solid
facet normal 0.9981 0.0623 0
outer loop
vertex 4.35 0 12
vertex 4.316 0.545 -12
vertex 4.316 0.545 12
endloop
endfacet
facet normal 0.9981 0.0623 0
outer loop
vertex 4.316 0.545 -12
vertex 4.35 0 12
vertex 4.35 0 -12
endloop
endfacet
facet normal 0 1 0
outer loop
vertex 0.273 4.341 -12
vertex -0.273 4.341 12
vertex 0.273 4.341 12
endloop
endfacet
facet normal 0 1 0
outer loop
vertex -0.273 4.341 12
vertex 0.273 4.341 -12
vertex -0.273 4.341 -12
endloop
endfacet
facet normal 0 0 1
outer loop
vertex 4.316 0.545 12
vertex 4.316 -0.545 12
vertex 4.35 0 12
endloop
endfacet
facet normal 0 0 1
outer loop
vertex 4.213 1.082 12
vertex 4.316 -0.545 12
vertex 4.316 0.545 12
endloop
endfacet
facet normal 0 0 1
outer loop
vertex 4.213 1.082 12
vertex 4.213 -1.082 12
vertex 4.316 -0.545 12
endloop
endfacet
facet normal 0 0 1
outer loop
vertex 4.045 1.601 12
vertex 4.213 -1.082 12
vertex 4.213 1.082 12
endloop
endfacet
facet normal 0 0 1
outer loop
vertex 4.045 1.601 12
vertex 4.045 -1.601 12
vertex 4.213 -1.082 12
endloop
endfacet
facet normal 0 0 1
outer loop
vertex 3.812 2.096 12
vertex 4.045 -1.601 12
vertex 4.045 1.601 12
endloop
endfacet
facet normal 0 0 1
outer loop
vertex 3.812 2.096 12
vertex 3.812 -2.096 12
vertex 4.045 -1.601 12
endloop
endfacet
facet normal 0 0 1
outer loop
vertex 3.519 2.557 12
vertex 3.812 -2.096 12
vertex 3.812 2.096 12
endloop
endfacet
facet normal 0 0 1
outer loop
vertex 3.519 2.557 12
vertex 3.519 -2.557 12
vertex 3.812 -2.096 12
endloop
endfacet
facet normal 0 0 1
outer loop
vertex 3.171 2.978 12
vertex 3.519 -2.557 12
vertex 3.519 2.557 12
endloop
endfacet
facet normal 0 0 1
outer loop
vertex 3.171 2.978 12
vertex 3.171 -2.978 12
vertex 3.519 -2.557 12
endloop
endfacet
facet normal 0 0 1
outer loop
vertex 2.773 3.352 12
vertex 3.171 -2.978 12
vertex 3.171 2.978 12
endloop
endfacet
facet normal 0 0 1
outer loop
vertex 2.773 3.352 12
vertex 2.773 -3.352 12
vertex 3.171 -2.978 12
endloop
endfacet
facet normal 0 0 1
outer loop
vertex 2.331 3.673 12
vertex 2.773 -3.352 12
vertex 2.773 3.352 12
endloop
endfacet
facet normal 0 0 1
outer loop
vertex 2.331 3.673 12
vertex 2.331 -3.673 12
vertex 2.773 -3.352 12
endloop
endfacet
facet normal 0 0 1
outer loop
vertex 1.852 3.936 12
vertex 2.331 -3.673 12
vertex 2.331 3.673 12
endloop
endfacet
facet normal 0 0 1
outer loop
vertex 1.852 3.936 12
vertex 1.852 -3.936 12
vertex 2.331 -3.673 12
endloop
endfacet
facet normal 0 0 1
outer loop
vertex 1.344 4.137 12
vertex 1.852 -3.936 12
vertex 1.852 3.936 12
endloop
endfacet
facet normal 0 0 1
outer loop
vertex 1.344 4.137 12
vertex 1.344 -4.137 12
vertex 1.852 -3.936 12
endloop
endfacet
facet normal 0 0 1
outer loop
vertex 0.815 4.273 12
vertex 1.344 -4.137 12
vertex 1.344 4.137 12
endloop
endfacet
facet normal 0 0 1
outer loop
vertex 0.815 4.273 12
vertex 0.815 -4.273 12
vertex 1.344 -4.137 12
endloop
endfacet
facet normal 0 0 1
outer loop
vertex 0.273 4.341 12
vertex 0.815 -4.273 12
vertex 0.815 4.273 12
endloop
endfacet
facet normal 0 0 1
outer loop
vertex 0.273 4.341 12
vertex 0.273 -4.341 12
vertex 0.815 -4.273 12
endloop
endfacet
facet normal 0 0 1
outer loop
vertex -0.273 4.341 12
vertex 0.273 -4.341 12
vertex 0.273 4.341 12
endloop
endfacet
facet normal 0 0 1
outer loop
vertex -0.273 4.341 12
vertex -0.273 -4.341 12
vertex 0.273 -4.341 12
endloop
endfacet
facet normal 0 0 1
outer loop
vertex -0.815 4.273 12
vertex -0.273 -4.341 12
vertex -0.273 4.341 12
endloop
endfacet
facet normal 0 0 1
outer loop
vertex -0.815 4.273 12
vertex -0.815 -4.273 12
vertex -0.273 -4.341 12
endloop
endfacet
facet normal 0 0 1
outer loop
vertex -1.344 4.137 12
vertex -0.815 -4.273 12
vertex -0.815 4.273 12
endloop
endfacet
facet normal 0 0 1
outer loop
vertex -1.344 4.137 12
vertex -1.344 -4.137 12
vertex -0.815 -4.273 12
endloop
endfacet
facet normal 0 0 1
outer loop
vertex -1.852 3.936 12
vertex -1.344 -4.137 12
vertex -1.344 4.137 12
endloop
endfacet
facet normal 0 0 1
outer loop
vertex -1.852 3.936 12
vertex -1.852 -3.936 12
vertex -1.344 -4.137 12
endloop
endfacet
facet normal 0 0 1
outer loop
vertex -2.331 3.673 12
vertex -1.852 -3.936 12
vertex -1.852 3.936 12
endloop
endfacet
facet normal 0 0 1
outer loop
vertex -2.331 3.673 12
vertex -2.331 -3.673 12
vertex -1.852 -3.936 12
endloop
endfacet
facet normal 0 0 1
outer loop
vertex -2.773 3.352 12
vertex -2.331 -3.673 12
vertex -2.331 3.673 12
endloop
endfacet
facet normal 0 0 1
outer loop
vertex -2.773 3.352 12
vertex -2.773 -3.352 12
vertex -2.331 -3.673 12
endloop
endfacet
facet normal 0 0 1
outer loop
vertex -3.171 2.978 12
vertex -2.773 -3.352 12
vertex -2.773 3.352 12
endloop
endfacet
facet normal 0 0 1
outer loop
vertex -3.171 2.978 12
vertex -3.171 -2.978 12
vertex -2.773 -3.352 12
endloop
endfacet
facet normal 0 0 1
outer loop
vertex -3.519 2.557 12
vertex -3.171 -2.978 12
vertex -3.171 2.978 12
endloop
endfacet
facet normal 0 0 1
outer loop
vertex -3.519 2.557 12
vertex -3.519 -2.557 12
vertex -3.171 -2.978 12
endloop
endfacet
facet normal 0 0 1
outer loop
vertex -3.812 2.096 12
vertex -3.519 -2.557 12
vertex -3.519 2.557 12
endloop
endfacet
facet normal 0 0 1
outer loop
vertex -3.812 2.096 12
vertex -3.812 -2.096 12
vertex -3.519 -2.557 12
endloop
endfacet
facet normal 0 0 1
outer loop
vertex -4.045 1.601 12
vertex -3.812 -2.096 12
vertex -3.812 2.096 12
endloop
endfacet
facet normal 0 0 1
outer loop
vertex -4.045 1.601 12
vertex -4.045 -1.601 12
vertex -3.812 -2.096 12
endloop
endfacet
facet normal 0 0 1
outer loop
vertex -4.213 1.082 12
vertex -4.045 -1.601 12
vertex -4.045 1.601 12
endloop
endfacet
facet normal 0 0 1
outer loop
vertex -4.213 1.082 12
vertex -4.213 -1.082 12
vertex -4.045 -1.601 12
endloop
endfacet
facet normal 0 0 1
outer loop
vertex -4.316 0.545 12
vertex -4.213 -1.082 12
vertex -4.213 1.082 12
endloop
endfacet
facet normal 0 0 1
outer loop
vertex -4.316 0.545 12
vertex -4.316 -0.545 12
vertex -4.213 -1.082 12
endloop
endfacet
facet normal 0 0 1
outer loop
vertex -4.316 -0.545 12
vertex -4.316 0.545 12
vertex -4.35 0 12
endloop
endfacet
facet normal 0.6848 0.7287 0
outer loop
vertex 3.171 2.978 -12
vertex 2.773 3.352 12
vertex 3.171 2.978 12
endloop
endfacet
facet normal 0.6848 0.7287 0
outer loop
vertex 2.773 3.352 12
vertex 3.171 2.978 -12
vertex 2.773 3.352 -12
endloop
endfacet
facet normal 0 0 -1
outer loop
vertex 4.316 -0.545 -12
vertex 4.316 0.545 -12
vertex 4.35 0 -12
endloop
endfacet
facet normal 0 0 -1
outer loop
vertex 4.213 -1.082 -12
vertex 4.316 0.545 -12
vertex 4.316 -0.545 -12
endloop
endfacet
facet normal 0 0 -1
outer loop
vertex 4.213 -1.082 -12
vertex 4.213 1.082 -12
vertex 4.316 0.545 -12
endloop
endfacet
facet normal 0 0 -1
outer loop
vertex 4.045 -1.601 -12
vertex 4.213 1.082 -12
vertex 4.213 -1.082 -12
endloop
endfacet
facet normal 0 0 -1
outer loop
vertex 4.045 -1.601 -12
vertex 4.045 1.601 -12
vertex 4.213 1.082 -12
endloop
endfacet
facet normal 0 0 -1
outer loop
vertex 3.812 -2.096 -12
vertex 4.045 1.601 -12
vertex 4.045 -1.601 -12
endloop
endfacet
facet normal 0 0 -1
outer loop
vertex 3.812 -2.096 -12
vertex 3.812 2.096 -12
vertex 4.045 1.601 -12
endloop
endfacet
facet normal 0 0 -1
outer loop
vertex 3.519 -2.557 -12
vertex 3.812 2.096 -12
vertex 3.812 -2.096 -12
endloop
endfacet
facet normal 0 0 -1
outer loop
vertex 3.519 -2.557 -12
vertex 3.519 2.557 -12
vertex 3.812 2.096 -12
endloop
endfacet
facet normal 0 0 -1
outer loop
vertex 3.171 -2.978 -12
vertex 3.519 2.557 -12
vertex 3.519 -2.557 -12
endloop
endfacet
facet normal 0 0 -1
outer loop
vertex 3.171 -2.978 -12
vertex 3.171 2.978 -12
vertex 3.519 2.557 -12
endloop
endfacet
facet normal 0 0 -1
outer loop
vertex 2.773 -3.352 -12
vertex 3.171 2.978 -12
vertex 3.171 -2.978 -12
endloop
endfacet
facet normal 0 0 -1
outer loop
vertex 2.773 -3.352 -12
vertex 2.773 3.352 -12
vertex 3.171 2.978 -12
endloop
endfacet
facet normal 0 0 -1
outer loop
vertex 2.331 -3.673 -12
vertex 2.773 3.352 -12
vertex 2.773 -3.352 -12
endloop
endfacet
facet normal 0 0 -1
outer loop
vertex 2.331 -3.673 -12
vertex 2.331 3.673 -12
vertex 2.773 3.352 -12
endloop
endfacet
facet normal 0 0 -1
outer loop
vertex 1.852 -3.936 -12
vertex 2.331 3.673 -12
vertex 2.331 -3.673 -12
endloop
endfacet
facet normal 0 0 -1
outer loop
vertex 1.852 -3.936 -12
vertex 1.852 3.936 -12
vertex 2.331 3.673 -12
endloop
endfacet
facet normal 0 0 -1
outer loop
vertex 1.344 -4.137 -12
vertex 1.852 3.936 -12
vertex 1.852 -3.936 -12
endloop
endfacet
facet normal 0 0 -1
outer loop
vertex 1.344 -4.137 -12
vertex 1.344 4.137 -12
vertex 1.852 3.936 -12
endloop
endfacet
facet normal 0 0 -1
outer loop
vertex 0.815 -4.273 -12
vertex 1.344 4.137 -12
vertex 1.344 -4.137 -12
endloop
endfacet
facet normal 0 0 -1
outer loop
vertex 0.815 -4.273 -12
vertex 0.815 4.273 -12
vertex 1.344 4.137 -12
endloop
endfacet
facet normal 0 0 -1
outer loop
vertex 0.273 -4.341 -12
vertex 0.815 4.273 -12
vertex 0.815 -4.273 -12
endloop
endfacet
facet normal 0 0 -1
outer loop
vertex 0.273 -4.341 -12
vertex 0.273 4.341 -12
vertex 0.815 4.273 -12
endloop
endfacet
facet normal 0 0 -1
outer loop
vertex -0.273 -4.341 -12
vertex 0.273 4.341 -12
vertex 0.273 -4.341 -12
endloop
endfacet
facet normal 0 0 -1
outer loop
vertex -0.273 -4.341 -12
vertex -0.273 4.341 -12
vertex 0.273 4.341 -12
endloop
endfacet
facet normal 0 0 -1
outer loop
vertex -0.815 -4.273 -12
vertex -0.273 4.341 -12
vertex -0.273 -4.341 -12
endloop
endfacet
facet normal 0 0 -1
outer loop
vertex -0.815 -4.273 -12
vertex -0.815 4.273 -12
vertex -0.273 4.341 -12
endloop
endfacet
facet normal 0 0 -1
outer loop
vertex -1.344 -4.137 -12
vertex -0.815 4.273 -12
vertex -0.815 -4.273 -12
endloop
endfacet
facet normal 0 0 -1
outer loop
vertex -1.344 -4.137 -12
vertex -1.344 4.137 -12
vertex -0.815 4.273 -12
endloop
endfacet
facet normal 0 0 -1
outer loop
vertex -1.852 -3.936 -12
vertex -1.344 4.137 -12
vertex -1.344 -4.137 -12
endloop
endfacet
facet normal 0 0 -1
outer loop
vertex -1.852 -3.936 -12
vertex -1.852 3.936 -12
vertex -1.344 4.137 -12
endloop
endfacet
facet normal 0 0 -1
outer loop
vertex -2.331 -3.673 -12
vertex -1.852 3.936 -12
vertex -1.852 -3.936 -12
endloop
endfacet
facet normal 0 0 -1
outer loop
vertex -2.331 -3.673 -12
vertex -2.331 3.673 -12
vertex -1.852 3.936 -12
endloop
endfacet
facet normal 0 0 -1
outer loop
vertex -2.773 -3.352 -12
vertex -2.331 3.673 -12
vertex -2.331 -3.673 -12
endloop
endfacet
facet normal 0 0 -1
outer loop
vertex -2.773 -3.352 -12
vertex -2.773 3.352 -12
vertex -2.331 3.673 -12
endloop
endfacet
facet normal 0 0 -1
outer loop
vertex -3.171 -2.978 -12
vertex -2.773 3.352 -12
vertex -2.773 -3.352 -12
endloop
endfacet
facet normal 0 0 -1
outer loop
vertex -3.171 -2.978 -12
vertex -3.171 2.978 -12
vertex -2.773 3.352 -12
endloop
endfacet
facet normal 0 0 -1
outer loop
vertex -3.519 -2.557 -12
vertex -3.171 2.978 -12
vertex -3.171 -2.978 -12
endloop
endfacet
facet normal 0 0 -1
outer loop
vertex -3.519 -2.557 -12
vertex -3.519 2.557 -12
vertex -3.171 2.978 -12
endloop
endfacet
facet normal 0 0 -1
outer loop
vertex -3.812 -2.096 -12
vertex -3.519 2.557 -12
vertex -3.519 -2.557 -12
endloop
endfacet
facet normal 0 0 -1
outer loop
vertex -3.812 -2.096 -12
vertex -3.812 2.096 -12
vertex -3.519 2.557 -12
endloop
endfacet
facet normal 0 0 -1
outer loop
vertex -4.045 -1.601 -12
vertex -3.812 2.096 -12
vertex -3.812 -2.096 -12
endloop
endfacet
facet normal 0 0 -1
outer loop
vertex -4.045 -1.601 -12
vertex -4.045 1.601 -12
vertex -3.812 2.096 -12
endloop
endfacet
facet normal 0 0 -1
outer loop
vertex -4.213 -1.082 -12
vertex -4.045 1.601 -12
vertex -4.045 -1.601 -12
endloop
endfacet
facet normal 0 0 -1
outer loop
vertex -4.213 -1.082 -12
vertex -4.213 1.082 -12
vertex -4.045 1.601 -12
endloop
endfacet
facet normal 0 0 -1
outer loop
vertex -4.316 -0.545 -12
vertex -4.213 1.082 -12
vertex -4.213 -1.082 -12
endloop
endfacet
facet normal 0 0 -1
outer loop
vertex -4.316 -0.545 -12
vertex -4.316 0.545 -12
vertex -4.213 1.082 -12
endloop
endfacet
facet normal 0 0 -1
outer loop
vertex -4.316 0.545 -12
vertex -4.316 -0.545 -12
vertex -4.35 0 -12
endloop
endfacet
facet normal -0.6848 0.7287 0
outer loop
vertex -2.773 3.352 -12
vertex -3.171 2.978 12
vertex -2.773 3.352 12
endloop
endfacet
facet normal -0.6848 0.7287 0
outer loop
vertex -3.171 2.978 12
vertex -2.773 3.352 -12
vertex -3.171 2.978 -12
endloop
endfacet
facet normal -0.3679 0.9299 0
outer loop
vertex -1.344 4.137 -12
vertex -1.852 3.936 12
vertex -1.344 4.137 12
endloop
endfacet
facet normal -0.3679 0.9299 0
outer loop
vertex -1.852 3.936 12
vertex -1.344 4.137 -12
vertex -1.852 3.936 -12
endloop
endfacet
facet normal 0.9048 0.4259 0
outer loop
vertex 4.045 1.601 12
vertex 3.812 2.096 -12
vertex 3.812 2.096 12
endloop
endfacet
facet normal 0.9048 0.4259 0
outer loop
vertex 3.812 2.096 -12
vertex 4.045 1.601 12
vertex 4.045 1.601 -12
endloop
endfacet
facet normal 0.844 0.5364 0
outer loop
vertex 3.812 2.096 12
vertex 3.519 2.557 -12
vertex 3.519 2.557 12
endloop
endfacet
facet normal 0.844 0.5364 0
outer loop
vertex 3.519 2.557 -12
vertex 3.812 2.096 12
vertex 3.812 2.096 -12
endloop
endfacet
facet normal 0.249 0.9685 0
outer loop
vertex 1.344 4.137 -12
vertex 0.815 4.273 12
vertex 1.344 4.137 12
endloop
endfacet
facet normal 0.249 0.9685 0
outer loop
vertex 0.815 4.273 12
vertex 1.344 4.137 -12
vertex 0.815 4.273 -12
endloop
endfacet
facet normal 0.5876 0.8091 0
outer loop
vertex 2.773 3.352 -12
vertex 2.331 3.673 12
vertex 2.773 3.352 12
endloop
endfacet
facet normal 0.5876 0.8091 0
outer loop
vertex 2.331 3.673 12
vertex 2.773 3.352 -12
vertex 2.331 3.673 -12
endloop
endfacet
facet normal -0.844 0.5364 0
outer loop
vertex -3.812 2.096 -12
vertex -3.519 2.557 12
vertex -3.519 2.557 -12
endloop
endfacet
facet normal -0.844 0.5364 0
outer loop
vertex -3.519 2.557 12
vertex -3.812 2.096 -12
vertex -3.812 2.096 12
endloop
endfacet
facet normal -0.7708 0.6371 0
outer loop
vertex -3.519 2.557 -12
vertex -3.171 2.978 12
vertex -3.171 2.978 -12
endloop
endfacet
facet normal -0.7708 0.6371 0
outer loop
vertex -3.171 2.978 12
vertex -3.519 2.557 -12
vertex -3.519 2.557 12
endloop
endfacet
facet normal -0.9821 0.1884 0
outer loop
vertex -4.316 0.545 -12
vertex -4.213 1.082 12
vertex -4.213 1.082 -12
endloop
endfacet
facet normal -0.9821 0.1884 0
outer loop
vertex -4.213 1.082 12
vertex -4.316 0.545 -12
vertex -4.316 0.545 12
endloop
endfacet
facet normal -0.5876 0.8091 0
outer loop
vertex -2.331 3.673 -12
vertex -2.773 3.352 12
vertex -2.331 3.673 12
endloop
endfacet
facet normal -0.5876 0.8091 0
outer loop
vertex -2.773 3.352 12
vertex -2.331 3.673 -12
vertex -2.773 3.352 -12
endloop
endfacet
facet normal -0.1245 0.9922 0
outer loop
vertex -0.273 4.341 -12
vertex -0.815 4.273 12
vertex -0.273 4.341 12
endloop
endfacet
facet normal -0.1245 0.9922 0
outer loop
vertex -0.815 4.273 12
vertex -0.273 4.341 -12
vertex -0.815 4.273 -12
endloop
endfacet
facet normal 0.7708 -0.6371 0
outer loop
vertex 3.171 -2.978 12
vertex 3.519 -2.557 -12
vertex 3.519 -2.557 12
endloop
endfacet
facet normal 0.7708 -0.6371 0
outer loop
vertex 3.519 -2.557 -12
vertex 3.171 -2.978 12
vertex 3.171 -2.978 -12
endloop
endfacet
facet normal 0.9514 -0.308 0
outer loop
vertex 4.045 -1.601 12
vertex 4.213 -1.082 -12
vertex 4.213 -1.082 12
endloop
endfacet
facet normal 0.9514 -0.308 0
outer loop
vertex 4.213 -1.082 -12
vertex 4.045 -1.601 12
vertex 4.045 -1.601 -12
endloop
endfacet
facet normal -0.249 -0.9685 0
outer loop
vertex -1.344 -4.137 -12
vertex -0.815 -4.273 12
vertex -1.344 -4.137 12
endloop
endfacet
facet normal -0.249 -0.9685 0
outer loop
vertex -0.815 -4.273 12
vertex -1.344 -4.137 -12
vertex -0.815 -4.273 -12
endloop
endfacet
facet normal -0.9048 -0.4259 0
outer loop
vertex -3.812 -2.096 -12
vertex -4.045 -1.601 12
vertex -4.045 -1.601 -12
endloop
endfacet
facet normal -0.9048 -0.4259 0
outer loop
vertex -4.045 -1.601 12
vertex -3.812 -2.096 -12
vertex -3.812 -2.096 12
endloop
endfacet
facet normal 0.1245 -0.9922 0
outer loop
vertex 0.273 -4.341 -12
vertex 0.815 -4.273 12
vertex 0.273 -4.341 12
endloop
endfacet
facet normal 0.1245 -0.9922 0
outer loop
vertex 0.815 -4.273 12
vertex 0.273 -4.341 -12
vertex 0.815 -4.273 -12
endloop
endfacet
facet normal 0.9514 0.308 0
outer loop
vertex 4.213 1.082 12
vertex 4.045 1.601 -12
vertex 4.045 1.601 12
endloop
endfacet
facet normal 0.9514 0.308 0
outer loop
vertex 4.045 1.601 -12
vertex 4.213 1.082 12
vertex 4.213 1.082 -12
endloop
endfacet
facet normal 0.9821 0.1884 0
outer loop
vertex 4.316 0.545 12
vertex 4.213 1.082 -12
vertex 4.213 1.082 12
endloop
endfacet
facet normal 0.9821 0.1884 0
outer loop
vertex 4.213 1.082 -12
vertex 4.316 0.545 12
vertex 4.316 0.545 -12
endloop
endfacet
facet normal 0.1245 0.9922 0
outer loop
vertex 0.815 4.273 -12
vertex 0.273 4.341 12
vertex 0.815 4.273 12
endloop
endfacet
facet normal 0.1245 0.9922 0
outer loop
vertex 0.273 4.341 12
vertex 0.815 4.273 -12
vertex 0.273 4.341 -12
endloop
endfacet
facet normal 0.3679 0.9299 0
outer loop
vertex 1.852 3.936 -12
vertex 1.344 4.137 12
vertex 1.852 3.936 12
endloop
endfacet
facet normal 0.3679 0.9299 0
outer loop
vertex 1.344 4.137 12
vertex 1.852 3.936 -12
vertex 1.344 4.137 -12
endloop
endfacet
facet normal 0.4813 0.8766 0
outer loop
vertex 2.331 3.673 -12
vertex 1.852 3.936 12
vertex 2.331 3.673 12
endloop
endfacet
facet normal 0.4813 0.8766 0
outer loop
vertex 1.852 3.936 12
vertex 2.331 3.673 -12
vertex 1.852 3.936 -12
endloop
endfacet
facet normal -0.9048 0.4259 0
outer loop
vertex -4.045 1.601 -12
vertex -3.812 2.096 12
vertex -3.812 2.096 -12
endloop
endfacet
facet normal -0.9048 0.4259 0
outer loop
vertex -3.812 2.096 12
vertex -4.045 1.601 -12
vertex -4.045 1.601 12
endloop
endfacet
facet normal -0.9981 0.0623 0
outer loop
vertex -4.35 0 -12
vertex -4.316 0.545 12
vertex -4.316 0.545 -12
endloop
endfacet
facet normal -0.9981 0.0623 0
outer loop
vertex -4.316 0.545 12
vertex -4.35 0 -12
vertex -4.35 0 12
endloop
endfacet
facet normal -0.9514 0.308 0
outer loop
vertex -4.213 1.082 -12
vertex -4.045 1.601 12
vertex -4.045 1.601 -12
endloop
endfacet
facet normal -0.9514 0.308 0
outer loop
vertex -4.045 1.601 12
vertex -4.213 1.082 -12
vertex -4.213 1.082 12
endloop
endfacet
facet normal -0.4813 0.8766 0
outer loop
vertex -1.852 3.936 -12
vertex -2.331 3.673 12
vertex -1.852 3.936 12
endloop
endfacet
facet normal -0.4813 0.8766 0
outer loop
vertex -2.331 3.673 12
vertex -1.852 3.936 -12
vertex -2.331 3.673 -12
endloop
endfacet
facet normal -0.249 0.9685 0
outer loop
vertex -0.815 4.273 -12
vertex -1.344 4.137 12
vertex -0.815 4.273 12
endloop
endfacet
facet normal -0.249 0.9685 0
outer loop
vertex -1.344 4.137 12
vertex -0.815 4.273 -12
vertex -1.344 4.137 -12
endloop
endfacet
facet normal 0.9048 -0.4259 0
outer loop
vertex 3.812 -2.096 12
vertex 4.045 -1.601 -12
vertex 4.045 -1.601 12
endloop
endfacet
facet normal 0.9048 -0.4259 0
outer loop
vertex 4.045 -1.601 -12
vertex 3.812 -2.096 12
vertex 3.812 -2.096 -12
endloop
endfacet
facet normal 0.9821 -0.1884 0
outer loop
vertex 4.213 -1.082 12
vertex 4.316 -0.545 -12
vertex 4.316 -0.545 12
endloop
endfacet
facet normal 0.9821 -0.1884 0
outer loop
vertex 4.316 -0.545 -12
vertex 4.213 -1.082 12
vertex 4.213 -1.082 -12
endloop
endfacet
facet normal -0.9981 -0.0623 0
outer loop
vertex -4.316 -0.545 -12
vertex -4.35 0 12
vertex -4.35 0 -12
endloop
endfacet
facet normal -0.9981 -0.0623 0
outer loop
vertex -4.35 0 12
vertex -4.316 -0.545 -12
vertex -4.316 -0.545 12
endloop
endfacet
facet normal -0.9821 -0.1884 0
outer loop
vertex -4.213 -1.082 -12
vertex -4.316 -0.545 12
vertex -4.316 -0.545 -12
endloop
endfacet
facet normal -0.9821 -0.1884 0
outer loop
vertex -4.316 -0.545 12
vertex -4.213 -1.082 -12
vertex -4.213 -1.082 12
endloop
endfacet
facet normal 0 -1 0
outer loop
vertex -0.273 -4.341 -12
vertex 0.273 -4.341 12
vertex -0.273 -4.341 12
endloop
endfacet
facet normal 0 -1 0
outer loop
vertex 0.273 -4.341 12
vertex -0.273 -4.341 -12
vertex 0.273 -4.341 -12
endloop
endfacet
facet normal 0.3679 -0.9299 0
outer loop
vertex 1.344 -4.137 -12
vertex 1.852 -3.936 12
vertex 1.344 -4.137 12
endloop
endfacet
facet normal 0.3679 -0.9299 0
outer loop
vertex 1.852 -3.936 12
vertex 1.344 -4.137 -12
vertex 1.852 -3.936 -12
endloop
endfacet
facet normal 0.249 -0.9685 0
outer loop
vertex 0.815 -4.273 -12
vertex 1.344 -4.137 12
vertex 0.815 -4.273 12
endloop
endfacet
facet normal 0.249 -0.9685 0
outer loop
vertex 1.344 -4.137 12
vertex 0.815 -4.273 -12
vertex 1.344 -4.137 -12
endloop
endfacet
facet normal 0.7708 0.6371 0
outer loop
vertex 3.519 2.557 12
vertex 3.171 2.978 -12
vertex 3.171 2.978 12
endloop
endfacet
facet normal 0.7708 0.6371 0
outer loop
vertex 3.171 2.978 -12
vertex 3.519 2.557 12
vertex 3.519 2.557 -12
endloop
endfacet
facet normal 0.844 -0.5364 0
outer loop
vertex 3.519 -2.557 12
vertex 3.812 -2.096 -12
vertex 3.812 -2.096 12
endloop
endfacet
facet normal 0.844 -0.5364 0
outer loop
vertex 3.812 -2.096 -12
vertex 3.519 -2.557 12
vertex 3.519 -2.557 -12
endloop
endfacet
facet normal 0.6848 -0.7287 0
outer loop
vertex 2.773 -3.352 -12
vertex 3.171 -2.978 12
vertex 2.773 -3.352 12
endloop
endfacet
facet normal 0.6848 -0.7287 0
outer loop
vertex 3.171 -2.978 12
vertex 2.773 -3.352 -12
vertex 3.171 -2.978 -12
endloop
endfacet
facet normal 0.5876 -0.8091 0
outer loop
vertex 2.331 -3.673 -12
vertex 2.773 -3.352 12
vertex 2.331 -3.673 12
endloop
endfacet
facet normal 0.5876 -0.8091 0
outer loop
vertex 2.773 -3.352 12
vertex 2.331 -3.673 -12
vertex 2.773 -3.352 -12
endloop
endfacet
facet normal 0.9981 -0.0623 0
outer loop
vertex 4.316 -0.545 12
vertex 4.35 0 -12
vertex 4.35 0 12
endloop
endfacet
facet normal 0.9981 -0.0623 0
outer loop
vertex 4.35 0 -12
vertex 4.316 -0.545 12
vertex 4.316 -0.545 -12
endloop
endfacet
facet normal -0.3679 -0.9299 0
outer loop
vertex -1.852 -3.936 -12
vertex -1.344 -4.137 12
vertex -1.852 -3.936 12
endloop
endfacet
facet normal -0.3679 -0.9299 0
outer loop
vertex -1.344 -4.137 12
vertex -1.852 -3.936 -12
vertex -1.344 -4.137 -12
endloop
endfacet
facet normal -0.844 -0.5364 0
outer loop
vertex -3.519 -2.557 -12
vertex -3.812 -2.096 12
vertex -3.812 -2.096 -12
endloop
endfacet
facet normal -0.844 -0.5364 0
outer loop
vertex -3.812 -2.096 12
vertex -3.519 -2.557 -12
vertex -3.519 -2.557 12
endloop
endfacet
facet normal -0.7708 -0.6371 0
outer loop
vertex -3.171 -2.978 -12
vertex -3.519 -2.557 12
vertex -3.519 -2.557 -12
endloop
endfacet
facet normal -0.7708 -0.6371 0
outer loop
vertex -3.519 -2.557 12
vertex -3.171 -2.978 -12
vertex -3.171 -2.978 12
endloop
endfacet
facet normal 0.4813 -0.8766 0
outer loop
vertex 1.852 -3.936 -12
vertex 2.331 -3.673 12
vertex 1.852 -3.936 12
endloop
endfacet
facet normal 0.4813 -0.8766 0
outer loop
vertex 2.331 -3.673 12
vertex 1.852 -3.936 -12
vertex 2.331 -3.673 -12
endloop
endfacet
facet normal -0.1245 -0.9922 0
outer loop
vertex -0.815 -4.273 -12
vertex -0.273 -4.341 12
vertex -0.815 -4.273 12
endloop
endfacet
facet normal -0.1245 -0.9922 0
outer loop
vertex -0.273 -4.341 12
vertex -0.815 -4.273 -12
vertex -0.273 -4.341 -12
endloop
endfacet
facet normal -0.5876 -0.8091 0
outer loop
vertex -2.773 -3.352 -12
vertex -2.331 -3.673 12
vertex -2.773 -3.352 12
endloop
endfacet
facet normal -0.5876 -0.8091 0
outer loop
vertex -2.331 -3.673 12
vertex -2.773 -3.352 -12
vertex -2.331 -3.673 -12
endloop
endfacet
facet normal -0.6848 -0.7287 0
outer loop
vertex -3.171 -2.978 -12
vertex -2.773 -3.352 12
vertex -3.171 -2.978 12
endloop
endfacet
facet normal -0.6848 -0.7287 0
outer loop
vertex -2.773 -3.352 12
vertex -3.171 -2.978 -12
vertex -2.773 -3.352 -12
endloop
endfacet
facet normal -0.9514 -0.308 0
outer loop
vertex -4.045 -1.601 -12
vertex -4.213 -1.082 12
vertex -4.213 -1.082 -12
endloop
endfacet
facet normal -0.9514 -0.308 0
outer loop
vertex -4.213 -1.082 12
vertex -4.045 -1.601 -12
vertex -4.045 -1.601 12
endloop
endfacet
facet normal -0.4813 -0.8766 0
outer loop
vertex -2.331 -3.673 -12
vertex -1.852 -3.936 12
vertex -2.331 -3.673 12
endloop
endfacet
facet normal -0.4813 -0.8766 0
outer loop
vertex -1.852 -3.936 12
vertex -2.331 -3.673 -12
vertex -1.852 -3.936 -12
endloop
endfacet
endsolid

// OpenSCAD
$fn = 50;


difference() {
	union() {
		translate(v = [0, 0, -12.0000000000]) {
			cylinder(h = 24, r = 4.3500000000);
		}
	}
	union() {
		translate(v = [0, 0, -100.0000000000]) {
			cylinder(h = 200, r = 0);
		}
	}
}
